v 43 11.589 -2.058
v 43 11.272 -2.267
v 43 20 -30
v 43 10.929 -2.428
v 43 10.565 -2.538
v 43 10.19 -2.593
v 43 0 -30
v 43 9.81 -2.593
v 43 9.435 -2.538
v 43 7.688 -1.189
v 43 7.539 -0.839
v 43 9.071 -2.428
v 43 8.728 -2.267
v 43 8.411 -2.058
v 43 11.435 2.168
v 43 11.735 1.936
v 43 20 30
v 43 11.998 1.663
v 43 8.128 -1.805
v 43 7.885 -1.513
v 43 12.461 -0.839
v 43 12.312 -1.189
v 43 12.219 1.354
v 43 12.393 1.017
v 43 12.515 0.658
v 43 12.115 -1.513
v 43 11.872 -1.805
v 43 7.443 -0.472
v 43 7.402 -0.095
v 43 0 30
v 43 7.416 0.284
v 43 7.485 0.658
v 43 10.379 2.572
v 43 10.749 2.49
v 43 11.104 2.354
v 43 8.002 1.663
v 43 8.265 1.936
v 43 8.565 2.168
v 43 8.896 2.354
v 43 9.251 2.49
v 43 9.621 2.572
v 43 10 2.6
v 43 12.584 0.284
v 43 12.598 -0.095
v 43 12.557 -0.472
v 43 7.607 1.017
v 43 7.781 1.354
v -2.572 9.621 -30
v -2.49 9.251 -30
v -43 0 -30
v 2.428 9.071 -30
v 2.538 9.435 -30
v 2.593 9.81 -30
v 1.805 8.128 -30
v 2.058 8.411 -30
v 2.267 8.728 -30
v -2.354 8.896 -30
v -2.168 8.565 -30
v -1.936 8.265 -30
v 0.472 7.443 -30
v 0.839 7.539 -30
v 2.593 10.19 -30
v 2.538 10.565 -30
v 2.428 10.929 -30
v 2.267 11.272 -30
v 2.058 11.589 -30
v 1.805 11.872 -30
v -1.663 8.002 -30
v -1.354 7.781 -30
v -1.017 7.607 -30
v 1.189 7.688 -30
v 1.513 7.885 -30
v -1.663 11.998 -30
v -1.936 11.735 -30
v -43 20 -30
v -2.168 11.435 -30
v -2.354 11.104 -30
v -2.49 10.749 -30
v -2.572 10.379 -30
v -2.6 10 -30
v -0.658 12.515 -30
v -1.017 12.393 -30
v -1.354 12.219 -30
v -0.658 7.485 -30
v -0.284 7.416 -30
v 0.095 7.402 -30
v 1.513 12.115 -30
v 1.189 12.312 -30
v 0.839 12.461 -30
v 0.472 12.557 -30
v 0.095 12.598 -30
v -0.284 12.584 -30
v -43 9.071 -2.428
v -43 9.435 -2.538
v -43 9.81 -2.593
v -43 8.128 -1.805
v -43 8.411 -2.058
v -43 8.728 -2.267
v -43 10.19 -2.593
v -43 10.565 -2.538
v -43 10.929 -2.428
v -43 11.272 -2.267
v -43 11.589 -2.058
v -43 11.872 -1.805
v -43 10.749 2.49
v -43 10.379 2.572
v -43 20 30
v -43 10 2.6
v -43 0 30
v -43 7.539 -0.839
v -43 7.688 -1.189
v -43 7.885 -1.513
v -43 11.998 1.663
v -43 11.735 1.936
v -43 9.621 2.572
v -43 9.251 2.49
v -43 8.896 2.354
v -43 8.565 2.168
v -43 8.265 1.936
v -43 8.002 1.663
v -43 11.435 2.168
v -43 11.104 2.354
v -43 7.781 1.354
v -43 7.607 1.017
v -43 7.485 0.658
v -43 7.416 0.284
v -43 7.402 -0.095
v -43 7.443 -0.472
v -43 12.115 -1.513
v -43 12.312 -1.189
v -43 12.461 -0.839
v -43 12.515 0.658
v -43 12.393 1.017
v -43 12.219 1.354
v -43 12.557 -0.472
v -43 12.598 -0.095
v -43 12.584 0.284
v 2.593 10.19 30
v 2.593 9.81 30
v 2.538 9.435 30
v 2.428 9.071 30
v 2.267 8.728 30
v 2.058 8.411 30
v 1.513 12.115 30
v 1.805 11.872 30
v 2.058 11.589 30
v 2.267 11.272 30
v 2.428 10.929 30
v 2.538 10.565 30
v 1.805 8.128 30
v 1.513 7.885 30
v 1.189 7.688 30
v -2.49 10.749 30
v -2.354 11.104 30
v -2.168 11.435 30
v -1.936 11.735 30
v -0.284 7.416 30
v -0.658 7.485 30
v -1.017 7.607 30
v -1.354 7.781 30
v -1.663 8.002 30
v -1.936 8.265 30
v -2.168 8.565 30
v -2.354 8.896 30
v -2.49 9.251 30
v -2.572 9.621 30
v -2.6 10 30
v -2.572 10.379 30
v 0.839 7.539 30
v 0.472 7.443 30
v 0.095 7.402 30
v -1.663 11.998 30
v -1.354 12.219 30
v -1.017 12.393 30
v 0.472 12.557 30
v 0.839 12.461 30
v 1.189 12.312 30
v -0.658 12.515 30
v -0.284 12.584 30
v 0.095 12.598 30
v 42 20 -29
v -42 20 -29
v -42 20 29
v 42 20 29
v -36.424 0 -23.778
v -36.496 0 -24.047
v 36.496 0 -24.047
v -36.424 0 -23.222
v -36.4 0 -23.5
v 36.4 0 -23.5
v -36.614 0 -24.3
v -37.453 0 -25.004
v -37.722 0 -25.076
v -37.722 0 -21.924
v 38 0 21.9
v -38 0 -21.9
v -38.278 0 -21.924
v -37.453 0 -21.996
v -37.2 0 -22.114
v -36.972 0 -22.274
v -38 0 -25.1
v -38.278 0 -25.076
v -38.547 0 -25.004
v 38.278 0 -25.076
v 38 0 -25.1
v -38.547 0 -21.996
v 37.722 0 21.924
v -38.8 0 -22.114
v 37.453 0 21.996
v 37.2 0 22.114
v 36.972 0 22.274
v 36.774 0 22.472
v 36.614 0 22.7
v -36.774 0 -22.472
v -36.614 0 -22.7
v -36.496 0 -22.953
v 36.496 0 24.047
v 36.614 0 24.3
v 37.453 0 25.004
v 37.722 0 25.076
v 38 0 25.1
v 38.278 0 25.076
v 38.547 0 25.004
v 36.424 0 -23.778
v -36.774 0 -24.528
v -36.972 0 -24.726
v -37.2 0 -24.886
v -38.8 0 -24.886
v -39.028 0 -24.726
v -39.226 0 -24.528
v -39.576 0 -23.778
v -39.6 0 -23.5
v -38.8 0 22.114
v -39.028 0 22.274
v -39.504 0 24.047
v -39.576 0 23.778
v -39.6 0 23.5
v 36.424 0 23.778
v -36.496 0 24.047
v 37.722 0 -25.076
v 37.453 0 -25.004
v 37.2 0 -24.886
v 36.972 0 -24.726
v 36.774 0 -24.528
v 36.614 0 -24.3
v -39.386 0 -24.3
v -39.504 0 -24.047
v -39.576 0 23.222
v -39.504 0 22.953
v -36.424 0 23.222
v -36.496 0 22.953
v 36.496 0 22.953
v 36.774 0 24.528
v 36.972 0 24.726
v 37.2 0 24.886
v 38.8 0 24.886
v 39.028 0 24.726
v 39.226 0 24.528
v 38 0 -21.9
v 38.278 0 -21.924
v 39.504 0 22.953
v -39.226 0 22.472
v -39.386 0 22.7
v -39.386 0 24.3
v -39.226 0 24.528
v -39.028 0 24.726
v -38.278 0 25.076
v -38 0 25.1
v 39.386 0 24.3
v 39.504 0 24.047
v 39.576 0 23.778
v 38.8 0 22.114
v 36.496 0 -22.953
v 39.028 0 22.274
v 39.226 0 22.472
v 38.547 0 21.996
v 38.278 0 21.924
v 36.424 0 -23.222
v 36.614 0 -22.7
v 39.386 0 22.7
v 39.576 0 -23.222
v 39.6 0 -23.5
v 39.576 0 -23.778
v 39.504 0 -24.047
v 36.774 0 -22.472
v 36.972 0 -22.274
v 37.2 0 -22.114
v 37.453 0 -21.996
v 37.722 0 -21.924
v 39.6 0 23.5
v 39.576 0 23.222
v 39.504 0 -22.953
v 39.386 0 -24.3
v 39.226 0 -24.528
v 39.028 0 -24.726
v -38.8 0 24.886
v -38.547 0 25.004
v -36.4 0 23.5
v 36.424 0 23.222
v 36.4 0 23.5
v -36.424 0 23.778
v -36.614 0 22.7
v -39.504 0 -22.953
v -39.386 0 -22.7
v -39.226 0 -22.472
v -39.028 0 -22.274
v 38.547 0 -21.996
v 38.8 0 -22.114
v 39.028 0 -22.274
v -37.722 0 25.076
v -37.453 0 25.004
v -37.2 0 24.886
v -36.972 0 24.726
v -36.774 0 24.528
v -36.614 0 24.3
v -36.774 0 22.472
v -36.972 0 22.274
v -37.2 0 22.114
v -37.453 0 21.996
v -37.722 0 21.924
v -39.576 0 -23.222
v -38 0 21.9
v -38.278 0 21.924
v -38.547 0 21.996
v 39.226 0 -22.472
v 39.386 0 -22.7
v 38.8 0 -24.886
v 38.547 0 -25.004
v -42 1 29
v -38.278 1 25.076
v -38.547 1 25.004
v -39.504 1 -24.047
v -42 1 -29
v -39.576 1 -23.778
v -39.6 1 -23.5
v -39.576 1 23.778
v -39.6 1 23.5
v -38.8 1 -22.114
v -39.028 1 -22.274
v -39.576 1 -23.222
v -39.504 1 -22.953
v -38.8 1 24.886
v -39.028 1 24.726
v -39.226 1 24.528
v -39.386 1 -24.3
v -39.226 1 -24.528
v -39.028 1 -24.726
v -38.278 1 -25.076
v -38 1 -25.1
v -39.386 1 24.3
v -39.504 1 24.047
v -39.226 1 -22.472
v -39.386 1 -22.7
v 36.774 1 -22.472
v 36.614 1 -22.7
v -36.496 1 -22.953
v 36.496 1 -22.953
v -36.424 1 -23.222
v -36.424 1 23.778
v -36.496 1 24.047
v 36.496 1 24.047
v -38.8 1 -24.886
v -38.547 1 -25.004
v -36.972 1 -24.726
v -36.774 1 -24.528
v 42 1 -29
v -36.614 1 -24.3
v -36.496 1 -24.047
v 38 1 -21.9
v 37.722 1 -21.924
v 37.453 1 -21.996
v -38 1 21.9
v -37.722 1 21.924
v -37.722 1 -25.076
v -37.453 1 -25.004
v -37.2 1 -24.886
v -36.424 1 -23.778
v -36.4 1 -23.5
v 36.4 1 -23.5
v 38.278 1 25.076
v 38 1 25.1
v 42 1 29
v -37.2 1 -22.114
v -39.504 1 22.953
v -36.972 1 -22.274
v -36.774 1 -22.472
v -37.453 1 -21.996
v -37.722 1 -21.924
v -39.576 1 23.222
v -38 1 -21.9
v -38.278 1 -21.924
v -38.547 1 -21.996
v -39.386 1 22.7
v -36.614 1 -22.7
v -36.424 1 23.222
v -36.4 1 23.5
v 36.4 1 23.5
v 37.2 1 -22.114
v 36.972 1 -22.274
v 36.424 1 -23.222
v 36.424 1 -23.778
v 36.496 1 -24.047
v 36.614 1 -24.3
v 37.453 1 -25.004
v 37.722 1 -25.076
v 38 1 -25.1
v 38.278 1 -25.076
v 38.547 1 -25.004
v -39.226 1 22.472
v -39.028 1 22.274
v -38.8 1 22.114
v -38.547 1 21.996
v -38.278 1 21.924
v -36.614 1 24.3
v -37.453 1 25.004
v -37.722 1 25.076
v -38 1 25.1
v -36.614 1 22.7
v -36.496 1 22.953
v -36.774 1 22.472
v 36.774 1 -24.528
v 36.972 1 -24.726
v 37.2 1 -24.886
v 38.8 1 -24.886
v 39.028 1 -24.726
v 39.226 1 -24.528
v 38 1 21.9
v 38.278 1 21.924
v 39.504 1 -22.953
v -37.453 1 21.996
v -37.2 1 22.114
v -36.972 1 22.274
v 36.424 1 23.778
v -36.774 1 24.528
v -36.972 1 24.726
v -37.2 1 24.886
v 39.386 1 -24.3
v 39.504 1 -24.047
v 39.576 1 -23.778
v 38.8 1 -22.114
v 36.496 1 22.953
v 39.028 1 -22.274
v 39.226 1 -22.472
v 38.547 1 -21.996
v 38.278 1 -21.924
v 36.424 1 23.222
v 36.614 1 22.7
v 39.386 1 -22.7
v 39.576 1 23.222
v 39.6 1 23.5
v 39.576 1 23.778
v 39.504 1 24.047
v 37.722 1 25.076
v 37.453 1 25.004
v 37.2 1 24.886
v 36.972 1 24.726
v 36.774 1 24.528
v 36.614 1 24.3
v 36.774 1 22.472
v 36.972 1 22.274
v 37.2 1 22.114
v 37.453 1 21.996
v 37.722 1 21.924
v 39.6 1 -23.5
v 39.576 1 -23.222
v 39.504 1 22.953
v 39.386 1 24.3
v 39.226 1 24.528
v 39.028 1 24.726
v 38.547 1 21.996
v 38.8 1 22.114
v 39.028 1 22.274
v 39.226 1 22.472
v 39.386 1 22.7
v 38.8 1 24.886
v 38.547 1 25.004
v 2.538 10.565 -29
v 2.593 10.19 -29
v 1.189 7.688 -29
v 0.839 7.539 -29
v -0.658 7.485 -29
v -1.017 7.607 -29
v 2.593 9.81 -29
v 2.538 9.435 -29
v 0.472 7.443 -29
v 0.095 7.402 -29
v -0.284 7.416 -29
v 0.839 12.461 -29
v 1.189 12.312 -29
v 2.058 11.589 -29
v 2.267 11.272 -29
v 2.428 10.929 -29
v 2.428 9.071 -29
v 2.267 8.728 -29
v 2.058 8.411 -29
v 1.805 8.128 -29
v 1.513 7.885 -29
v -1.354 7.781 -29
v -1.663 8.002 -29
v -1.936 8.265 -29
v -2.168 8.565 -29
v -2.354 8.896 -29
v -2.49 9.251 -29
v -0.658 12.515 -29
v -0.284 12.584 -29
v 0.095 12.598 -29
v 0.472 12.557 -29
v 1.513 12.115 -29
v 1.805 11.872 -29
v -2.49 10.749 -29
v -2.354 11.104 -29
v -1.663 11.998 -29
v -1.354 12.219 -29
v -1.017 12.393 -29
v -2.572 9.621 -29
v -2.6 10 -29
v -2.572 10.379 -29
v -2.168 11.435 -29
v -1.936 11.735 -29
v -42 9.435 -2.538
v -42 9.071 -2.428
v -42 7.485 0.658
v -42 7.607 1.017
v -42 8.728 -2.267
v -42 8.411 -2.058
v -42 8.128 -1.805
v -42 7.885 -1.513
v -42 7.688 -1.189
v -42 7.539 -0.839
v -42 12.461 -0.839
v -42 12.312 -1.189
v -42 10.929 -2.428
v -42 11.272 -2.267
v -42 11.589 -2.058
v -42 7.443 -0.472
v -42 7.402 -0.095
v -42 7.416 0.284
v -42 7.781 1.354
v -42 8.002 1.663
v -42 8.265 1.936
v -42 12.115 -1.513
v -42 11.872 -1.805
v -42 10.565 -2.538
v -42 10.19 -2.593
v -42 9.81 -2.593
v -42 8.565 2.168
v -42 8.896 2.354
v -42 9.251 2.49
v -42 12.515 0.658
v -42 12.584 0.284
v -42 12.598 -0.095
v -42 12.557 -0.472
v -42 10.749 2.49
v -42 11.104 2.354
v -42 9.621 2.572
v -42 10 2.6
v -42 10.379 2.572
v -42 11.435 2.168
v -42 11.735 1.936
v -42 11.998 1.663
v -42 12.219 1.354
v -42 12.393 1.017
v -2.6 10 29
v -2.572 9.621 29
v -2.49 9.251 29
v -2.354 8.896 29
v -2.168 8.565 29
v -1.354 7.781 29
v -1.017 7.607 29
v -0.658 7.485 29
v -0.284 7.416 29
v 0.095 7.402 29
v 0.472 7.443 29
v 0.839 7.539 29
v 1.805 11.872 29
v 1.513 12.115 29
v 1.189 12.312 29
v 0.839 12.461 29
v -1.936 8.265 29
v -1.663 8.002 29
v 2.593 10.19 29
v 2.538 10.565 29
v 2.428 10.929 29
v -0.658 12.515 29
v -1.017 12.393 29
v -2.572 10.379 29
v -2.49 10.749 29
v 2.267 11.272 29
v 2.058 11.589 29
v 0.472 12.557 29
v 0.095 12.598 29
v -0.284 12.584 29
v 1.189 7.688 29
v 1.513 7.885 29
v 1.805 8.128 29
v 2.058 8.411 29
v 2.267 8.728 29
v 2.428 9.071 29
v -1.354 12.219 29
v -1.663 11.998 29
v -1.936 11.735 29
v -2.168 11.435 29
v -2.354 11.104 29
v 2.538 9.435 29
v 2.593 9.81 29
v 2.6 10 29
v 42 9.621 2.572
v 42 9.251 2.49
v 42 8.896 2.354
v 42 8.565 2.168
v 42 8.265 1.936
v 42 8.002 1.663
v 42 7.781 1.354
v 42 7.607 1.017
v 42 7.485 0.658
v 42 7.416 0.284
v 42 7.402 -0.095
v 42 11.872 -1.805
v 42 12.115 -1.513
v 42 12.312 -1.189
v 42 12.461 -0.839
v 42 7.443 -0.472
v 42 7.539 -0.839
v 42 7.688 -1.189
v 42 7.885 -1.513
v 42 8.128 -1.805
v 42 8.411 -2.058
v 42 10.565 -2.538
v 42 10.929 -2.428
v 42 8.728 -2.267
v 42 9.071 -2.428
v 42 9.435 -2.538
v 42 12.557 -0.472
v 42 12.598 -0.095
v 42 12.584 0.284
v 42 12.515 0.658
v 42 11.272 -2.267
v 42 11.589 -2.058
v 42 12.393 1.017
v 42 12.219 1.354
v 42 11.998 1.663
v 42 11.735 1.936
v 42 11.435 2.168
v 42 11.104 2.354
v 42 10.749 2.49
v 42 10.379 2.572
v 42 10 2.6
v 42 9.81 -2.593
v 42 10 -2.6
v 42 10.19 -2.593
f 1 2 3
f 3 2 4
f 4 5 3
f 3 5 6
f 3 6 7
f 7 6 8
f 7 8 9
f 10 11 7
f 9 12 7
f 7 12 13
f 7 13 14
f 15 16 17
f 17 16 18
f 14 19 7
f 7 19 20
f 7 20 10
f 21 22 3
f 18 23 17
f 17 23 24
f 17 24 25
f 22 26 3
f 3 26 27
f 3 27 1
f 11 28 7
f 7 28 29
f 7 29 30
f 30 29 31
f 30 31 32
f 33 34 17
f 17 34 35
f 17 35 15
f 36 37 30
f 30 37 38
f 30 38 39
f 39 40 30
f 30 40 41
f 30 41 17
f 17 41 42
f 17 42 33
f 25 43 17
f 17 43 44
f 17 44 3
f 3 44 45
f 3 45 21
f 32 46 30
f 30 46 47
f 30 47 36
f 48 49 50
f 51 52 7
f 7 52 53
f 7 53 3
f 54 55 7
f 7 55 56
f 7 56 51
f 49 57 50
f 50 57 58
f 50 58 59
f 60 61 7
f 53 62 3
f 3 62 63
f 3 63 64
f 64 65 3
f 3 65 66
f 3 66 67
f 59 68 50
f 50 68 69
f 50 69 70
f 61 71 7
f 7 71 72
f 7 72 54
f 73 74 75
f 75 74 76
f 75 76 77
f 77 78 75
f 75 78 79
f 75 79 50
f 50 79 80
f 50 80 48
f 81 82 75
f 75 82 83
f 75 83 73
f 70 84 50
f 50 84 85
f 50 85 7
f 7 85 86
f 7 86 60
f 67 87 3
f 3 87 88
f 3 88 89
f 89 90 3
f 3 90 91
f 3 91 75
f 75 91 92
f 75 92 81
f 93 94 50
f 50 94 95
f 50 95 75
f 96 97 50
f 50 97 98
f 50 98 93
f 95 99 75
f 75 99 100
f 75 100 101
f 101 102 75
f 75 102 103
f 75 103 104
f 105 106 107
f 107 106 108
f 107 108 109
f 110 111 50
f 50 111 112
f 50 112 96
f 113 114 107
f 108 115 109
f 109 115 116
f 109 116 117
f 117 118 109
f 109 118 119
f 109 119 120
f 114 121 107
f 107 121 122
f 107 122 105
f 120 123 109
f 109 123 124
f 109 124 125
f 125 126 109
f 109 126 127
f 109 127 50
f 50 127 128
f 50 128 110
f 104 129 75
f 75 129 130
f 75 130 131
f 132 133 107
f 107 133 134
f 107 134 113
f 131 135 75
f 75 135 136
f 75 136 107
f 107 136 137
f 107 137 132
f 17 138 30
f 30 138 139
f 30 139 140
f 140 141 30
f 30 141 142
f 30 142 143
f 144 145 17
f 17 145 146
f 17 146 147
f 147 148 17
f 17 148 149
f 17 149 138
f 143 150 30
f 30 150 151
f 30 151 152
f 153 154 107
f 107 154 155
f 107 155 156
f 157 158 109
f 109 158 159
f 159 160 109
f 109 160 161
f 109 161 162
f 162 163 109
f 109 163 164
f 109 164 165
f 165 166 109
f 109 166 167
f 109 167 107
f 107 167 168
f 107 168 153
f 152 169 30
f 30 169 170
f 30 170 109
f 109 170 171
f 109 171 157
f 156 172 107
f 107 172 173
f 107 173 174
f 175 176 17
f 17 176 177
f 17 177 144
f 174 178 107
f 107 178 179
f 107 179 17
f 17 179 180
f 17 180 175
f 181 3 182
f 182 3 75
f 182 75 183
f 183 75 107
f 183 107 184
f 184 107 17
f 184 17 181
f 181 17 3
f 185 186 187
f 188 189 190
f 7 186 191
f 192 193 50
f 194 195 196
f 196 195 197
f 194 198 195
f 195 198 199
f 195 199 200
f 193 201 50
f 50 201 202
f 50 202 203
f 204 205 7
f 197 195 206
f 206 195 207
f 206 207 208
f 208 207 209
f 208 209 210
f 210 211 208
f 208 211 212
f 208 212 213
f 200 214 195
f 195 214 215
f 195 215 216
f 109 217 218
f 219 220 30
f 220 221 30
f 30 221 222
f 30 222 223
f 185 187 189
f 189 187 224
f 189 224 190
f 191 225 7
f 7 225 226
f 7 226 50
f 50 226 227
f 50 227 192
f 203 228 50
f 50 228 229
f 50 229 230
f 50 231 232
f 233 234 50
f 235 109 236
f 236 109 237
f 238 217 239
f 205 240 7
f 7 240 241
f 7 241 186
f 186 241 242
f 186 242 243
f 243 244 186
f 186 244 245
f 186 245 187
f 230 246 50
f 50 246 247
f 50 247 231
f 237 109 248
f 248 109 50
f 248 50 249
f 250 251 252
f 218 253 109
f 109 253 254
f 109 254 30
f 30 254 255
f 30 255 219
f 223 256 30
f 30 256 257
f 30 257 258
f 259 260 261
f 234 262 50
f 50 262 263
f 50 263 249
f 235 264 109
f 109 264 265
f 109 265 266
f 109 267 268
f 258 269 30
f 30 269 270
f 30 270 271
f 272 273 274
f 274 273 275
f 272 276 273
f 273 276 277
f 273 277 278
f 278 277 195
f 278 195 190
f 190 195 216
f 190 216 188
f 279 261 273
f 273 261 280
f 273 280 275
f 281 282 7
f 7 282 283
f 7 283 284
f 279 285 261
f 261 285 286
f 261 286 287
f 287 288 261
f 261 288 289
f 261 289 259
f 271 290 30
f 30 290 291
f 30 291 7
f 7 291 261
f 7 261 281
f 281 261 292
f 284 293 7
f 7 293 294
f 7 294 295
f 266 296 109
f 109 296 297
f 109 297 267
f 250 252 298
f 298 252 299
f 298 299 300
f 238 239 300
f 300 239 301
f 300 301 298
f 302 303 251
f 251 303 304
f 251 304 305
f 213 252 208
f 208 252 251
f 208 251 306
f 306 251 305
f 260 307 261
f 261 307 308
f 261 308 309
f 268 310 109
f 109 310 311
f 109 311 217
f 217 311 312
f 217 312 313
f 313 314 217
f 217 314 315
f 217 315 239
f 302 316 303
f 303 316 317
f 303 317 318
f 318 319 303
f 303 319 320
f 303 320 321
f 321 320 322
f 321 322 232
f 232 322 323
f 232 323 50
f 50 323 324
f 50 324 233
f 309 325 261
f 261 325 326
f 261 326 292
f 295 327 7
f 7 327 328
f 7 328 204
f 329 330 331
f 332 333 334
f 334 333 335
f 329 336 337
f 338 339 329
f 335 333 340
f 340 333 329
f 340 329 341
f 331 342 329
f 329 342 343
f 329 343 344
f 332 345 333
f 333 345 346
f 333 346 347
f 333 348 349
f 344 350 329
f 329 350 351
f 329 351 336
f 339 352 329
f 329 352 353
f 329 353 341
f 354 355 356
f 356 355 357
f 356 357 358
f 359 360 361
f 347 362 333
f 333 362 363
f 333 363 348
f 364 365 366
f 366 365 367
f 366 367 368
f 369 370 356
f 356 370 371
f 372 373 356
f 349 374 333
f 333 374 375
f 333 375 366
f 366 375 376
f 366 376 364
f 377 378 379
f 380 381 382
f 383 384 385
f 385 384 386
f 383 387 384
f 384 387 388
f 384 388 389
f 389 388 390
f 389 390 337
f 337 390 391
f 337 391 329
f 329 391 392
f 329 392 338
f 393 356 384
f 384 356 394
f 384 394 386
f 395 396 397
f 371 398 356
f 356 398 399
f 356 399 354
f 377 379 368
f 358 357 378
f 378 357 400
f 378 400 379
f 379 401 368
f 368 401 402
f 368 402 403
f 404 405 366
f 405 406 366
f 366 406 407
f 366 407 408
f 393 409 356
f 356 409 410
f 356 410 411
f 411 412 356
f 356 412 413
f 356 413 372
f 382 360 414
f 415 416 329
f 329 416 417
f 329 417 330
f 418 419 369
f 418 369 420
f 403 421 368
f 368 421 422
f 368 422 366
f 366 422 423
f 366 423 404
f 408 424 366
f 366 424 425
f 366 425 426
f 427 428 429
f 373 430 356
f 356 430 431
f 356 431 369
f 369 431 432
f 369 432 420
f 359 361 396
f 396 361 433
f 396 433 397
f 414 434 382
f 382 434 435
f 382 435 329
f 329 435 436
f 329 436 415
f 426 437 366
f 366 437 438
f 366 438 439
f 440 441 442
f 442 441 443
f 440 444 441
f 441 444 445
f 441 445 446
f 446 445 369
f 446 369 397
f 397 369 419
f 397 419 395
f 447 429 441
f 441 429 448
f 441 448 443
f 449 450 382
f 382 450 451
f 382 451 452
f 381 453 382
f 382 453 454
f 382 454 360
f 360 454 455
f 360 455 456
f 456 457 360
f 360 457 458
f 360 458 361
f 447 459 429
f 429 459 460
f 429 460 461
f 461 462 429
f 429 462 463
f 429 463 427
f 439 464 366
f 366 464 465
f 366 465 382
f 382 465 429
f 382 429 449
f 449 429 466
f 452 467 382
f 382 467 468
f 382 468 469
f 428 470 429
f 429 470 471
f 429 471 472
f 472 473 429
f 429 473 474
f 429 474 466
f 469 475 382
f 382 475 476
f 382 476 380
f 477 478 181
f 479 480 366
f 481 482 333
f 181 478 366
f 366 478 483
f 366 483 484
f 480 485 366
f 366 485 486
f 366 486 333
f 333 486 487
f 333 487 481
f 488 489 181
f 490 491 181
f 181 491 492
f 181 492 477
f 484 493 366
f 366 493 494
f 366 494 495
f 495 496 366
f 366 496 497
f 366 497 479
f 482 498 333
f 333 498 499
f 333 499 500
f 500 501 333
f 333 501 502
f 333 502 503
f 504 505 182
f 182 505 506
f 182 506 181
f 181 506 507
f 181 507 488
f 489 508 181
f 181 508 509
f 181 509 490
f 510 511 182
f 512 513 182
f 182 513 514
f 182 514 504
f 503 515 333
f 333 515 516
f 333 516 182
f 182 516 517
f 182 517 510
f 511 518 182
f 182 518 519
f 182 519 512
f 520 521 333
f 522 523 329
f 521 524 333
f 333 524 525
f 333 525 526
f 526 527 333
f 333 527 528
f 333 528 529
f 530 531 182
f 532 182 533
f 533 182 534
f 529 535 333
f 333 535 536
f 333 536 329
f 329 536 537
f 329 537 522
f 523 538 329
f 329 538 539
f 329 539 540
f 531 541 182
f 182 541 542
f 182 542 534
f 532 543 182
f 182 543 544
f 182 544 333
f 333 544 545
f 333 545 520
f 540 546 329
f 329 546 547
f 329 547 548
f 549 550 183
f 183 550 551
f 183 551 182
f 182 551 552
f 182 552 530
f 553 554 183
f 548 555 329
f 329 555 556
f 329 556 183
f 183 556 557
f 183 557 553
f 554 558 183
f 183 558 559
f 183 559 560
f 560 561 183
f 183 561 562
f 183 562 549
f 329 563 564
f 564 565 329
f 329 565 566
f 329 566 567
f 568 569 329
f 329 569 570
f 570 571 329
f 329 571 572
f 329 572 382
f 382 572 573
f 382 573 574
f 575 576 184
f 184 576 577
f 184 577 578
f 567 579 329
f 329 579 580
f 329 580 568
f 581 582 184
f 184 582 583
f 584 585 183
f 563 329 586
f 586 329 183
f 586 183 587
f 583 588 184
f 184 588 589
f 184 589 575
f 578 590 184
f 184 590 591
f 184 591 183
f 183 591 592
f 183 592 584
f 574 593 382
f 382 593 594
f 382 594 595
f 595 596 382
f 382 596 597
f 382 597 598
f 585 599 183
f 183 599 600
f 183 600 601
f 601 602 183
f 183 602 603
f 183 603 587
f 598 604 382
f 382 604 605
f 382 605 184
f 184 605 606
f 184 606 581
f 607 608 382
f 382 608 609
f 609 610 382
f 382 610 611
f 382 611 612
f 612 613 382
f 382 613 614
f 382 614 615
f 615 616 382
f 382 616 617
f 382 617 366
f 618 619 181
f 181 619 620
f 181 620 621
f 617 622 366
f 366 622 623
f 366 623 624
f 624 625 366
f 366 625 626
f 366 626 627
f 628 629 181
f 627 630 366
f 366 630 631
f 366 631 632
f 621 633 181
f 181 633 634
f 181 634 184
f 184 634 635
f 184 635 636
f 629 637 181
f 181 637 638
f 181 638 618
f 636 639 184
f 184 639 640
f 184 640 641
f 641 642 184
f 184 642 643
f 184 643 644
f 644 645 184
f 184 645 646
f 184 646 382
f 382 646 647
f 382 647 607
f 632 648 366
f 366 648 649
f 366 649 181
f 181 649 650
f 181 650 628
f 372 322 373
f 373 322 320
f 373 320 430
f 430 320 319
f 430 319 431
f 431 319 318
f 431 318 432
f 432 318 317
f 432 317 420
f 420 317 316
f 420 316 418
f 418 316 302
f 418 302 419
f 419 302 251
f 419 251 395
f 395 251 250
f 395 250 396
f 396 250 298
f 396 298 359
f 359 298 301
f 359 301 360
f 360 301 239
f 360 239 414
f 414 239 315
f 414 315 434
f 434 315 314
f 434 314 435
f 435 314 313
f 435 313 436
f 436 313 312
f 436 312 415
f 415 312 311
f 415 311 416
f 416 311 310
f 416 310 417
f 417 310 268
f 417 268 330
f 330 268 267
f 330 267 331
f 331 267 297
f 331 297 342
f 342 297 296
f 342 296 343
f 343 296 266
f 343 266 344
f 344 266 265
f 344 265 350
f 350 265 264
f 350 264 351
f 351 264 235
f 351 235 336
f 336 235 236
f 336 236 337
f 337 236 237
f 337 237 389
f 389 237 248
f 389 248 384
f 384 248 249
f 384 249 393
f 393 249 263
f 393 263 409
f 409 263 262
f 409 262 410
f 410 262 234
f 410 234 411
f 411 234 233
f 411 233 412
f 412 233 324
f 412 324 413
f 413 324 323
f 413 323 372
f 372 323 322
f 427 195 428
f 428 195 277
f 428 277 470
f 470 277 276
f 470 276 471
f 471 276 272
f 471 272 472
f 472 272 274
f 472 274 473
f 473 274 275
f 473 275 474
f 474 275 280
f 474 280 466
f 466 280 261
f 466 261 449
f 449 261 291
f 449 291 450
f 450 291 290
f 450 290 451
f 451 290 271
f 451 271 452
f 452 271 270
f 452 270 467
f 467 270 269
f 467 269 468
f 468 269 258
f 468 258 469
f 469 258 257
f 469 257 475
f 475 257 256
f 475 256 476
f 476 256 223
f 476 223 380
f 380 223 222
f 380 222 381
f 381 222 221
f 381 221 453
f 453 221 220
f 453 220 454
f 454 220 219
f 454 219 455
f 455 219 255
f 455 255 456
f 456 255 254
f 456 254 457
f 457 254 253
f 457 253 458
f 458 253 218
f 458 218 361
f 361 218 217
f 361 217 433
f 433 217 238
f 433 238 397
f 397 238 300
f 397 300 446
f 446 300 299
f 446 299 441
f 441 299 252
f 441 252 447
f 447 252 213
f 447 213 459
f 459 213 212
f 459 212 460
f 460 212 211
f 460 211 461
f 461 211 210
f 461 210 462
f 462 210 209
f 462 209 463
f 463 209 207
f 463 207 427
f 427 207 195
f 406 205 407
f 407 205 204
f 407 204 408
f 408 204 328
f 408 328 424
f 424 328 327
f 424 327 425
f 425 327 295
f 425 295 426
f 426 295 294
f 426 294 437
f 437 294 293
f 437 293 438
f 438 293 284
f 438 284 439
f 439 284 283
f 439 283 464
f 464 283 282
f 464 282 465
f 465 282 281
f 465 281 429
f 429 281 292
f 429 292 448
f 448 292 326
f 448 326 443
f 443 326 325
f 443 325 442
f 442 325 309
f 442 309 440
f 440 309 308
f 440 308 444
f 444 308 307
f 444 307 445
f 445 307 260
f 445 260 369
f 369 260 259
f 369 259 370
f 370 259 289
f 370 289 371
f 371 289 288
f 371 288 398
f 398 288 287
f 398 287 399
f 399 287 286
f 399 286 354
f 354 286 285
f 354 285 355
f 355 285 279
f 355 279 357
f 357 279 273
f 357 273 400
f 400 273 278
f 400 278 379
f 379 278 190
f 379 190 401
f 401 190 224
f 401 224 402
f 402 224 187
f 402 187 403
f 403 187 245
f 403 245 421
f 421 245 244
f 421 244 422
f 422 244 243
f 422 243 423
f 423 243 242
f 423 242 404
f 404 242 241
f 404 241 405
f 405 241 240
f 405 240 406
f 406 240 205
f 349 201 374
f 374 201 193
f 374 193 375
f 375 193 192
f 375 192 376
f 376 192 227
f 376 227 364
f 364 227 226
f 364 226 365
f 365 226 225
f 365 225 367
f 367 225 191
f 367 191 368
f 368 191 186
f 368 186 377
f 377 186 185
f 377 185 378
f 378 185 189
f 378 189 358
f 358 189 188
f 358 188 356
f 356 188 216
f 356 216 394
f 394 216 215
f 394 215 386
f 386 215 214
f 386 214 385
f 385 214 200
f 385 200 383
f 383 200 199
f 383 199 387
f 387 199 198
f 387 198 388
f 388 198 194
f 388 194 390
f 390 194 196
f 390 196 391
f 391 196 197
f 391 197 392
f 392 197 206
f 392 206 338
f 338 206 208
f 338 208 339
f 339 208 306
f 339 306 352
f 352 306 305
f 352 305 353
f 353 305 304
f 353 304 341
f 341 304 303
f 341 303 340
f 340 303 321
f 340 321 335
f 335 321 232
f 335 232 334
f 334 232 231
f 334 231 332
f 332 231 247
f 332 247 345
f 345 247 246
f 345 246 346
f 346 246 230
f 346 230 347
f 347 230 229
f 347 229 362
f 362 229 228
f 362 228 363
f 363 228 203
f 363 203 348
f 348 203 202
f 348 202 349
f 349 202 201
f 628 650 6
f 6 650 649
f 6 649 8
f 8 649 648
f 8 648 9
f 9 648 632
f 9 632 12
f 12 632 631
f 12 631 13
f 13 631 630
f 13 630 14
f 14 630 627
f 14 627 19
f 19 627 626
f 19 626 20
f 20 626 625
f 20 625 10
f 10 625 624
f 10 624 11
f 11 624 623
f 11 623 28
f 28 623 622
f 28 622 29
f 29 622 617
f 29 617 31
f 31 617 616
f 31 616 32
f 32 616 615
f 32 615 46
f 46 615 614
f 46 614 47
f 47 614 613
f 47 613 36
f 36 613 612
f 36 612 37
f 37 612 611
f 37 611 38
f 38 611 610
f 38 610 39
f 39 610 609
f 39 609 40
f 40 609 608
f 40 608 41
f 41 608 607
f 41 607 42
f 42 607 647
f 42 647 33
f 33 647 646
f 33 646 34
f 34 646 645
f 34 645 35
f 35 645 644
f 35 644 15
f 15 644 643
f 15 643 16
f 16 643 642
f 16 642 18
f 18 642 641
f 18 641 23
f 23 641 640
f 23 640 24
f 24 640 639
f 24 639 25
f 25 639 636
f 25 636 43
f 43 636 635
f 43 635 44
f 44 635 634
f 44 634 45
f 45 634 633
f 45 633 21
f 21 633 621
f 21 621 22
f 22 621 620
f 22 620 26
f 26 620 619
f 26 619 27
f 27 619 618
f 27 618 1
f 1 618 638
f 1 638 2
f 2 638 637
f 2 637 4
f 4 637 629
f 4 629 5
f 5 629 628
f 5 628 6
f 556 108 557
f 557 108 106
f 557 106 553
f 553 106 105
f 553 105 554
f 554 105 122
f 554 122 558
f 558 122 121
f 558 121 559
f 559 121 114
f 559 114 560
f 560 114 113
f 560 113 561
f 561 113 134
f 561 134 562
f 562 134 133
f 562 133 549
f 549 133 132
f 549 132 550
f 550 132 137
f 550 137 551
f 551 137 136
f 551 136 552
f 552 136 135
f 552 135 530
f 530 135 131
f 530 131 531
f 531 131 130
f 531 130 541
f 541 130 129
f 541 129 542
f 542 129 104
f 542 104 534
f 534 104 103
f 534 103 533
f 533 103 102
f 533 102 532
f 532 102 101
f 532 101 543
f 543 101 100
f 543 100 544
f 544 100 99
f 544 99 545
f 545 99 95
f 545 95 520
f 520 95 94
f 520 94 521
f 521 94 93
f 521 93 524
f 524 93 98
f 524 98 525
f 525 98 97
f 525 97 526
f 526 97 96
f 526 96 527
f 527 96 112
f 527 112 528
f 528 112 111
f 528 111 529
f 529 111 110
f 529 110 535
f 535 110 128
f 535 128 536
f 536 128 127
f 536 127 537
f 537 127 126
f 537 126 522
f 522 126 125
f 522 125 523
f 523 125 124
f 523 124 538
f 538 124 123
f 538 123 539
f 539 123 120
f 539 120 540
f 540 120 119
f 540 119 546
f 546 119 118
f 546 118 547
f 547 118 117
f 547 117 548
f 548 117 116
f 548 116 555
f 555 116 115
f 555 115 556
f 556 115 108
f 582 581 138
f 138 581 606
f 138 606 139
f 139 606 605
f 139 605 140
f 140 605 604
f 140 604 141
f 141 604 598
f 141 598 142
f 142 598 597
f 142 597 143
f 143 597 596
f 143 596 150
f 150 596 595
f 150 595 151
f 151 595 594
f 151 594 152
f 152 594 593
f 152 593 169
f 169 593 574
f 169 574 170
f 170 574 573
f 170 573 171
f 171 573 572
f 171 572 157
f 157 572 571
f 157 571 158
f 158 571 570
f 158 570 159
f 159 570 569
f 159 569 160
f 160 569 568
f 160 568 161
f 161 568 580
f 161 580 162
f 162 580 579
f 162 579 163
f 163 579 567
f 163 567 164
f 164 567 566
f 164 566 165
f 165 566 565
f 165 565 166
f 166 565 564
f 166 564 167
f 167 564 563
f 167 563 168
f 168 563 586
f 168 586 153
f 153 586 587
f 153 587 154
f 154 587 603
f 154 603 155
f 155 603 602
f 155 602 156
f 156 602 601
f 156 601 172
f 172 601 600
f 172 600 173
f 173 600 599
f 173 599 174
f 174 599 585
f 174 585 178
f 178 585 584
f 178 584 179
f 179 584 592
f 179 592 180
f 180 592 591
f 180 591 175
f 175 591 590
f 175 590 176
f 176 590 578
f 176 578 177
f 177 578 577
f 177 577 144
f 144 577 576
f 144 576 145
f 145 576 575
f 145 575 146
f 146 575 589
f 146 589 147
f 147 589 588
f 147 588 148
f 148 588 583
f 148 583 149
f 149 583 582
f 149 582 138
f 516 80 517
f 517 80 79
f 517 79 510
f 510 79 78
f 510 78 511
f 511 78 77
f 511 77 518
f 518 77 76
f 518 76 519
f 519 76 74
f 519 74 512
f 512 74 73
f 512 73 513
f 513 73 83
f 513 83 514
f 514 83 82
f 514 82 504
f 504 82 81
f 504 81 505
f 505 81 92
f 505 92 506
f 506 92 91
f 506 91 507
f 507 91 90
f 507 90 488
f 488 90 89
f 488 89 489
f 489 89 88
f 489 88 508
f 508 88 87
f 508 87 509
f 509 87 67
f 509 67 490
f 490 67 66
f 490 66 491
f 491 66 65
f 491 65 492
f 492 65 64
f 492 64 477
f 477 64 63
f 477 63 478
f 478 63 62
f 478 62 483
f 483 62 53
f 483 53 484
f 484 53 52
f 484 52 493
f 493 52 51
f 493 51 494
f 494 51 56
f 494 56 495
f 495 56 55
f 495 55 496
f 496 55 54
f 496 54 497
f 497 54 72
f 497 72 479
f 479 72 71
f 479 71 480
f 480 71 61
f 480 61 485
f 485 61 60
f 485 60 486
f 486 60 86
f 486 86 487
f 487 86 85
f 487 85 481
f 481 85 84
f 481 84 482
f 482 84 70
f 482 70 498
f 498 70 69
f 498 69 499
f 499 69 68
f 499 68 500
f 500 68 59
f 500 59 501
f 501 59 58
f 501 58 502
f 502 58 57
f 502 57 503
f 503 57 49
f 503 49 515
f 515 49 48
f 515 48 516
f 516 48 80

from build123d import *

# Parameters (mm, degrees)
SKETCH_1_W          = 86
SKETCH_1_H          = 60
EXTRUDE_1_DEPTH     = 20
SKETCH_2_W          = 84
SKETCH_2_H          = 58
CUT_EXTRUDE_1_DEPTH = 19
SKETCH_3_R          = 1.6
CUT_EXTRUDE_2_DEPTH = 1
SKETCH_4_R          = 2.6
CUT_EXTRUDE_3_DEPTH = 94.252345815
SKETCH_5_R          = 2.6
CUT_EXTRUDE_4_DEPTH = 77.47875522


with BuildPart() as part:
    # 草图1 → 凸台-拉伸1 (new body)
    with BuildSketch(Plane(origin=(0, 0, 0), x_dir=(1, 0, 0), z_dir=(0, 1, 0))):
        Rectangle(SKETCH_1_W, SKETCH_1_H)
    extrude(amount=EXTRUDE_1_DEPTH)

    # 草图2 → 切除-拉伸1 (cut)
    with BuildSketch(Plane(origin=(0, 20, 0), x_dir=(1, 0, 0), z_dir=(0, 1, 0))):
        Rectangle(SKETCH_2_W, SKETCH_2_H)
    extrude(amount=-CUT_EXTRUDE_1_DEPTH, mode=Mode.SUBTRACT)

    # 草图3 → 切除-拉伸2 (cut)
    with BuildSketch(Plane.XZ):
        with Locations(Location((-38, 23.5, 0), (0, 0, 270))):
            Circle(SKETCH_3_R)
        with Locations(Location((38, 23.5, 0), (0, 0, 90))):
            Circle(SKETCH_3_R)
        with Locations(Location((38, -23.5, 0), (0, 0, 270))):
            Circle(SKETCH_3_R)
        with Locations(Location((-38, -23.5, 0), (0, 0, 90))):
            Circle(SKETCH_3_R)
    extrude(amount=-CUT_EXTRUDE_2_DEPTH, mode=Mode.SUBTRACT)

    # 草图4 → 切除-拉伸3 (cut, through all)
    with BuildSketch(Plane.ZY.offset(43)):
        with Locations((0, 10)):
            Circle(SKETCH_4_R)
    extrude(amount=-CUT_EXTRUDE_3_DEPTH, mode=Mode.SUBTRACT)

    # 草图5 → 切除-拉伸4 (cut, through all)
    with BuildSketch(Plane(origin=(0, 0, -30), x_dir=(-1, 0, 0), z_dir=(0, 0, -1))):
        with Locations((0, 10)):
            Circle(SKETCH_5_R)
    extrude(amount=-CUT_EXTRUDE_4_DEPTH, mode=Mode.SUBTRACT)


solid = part.part
